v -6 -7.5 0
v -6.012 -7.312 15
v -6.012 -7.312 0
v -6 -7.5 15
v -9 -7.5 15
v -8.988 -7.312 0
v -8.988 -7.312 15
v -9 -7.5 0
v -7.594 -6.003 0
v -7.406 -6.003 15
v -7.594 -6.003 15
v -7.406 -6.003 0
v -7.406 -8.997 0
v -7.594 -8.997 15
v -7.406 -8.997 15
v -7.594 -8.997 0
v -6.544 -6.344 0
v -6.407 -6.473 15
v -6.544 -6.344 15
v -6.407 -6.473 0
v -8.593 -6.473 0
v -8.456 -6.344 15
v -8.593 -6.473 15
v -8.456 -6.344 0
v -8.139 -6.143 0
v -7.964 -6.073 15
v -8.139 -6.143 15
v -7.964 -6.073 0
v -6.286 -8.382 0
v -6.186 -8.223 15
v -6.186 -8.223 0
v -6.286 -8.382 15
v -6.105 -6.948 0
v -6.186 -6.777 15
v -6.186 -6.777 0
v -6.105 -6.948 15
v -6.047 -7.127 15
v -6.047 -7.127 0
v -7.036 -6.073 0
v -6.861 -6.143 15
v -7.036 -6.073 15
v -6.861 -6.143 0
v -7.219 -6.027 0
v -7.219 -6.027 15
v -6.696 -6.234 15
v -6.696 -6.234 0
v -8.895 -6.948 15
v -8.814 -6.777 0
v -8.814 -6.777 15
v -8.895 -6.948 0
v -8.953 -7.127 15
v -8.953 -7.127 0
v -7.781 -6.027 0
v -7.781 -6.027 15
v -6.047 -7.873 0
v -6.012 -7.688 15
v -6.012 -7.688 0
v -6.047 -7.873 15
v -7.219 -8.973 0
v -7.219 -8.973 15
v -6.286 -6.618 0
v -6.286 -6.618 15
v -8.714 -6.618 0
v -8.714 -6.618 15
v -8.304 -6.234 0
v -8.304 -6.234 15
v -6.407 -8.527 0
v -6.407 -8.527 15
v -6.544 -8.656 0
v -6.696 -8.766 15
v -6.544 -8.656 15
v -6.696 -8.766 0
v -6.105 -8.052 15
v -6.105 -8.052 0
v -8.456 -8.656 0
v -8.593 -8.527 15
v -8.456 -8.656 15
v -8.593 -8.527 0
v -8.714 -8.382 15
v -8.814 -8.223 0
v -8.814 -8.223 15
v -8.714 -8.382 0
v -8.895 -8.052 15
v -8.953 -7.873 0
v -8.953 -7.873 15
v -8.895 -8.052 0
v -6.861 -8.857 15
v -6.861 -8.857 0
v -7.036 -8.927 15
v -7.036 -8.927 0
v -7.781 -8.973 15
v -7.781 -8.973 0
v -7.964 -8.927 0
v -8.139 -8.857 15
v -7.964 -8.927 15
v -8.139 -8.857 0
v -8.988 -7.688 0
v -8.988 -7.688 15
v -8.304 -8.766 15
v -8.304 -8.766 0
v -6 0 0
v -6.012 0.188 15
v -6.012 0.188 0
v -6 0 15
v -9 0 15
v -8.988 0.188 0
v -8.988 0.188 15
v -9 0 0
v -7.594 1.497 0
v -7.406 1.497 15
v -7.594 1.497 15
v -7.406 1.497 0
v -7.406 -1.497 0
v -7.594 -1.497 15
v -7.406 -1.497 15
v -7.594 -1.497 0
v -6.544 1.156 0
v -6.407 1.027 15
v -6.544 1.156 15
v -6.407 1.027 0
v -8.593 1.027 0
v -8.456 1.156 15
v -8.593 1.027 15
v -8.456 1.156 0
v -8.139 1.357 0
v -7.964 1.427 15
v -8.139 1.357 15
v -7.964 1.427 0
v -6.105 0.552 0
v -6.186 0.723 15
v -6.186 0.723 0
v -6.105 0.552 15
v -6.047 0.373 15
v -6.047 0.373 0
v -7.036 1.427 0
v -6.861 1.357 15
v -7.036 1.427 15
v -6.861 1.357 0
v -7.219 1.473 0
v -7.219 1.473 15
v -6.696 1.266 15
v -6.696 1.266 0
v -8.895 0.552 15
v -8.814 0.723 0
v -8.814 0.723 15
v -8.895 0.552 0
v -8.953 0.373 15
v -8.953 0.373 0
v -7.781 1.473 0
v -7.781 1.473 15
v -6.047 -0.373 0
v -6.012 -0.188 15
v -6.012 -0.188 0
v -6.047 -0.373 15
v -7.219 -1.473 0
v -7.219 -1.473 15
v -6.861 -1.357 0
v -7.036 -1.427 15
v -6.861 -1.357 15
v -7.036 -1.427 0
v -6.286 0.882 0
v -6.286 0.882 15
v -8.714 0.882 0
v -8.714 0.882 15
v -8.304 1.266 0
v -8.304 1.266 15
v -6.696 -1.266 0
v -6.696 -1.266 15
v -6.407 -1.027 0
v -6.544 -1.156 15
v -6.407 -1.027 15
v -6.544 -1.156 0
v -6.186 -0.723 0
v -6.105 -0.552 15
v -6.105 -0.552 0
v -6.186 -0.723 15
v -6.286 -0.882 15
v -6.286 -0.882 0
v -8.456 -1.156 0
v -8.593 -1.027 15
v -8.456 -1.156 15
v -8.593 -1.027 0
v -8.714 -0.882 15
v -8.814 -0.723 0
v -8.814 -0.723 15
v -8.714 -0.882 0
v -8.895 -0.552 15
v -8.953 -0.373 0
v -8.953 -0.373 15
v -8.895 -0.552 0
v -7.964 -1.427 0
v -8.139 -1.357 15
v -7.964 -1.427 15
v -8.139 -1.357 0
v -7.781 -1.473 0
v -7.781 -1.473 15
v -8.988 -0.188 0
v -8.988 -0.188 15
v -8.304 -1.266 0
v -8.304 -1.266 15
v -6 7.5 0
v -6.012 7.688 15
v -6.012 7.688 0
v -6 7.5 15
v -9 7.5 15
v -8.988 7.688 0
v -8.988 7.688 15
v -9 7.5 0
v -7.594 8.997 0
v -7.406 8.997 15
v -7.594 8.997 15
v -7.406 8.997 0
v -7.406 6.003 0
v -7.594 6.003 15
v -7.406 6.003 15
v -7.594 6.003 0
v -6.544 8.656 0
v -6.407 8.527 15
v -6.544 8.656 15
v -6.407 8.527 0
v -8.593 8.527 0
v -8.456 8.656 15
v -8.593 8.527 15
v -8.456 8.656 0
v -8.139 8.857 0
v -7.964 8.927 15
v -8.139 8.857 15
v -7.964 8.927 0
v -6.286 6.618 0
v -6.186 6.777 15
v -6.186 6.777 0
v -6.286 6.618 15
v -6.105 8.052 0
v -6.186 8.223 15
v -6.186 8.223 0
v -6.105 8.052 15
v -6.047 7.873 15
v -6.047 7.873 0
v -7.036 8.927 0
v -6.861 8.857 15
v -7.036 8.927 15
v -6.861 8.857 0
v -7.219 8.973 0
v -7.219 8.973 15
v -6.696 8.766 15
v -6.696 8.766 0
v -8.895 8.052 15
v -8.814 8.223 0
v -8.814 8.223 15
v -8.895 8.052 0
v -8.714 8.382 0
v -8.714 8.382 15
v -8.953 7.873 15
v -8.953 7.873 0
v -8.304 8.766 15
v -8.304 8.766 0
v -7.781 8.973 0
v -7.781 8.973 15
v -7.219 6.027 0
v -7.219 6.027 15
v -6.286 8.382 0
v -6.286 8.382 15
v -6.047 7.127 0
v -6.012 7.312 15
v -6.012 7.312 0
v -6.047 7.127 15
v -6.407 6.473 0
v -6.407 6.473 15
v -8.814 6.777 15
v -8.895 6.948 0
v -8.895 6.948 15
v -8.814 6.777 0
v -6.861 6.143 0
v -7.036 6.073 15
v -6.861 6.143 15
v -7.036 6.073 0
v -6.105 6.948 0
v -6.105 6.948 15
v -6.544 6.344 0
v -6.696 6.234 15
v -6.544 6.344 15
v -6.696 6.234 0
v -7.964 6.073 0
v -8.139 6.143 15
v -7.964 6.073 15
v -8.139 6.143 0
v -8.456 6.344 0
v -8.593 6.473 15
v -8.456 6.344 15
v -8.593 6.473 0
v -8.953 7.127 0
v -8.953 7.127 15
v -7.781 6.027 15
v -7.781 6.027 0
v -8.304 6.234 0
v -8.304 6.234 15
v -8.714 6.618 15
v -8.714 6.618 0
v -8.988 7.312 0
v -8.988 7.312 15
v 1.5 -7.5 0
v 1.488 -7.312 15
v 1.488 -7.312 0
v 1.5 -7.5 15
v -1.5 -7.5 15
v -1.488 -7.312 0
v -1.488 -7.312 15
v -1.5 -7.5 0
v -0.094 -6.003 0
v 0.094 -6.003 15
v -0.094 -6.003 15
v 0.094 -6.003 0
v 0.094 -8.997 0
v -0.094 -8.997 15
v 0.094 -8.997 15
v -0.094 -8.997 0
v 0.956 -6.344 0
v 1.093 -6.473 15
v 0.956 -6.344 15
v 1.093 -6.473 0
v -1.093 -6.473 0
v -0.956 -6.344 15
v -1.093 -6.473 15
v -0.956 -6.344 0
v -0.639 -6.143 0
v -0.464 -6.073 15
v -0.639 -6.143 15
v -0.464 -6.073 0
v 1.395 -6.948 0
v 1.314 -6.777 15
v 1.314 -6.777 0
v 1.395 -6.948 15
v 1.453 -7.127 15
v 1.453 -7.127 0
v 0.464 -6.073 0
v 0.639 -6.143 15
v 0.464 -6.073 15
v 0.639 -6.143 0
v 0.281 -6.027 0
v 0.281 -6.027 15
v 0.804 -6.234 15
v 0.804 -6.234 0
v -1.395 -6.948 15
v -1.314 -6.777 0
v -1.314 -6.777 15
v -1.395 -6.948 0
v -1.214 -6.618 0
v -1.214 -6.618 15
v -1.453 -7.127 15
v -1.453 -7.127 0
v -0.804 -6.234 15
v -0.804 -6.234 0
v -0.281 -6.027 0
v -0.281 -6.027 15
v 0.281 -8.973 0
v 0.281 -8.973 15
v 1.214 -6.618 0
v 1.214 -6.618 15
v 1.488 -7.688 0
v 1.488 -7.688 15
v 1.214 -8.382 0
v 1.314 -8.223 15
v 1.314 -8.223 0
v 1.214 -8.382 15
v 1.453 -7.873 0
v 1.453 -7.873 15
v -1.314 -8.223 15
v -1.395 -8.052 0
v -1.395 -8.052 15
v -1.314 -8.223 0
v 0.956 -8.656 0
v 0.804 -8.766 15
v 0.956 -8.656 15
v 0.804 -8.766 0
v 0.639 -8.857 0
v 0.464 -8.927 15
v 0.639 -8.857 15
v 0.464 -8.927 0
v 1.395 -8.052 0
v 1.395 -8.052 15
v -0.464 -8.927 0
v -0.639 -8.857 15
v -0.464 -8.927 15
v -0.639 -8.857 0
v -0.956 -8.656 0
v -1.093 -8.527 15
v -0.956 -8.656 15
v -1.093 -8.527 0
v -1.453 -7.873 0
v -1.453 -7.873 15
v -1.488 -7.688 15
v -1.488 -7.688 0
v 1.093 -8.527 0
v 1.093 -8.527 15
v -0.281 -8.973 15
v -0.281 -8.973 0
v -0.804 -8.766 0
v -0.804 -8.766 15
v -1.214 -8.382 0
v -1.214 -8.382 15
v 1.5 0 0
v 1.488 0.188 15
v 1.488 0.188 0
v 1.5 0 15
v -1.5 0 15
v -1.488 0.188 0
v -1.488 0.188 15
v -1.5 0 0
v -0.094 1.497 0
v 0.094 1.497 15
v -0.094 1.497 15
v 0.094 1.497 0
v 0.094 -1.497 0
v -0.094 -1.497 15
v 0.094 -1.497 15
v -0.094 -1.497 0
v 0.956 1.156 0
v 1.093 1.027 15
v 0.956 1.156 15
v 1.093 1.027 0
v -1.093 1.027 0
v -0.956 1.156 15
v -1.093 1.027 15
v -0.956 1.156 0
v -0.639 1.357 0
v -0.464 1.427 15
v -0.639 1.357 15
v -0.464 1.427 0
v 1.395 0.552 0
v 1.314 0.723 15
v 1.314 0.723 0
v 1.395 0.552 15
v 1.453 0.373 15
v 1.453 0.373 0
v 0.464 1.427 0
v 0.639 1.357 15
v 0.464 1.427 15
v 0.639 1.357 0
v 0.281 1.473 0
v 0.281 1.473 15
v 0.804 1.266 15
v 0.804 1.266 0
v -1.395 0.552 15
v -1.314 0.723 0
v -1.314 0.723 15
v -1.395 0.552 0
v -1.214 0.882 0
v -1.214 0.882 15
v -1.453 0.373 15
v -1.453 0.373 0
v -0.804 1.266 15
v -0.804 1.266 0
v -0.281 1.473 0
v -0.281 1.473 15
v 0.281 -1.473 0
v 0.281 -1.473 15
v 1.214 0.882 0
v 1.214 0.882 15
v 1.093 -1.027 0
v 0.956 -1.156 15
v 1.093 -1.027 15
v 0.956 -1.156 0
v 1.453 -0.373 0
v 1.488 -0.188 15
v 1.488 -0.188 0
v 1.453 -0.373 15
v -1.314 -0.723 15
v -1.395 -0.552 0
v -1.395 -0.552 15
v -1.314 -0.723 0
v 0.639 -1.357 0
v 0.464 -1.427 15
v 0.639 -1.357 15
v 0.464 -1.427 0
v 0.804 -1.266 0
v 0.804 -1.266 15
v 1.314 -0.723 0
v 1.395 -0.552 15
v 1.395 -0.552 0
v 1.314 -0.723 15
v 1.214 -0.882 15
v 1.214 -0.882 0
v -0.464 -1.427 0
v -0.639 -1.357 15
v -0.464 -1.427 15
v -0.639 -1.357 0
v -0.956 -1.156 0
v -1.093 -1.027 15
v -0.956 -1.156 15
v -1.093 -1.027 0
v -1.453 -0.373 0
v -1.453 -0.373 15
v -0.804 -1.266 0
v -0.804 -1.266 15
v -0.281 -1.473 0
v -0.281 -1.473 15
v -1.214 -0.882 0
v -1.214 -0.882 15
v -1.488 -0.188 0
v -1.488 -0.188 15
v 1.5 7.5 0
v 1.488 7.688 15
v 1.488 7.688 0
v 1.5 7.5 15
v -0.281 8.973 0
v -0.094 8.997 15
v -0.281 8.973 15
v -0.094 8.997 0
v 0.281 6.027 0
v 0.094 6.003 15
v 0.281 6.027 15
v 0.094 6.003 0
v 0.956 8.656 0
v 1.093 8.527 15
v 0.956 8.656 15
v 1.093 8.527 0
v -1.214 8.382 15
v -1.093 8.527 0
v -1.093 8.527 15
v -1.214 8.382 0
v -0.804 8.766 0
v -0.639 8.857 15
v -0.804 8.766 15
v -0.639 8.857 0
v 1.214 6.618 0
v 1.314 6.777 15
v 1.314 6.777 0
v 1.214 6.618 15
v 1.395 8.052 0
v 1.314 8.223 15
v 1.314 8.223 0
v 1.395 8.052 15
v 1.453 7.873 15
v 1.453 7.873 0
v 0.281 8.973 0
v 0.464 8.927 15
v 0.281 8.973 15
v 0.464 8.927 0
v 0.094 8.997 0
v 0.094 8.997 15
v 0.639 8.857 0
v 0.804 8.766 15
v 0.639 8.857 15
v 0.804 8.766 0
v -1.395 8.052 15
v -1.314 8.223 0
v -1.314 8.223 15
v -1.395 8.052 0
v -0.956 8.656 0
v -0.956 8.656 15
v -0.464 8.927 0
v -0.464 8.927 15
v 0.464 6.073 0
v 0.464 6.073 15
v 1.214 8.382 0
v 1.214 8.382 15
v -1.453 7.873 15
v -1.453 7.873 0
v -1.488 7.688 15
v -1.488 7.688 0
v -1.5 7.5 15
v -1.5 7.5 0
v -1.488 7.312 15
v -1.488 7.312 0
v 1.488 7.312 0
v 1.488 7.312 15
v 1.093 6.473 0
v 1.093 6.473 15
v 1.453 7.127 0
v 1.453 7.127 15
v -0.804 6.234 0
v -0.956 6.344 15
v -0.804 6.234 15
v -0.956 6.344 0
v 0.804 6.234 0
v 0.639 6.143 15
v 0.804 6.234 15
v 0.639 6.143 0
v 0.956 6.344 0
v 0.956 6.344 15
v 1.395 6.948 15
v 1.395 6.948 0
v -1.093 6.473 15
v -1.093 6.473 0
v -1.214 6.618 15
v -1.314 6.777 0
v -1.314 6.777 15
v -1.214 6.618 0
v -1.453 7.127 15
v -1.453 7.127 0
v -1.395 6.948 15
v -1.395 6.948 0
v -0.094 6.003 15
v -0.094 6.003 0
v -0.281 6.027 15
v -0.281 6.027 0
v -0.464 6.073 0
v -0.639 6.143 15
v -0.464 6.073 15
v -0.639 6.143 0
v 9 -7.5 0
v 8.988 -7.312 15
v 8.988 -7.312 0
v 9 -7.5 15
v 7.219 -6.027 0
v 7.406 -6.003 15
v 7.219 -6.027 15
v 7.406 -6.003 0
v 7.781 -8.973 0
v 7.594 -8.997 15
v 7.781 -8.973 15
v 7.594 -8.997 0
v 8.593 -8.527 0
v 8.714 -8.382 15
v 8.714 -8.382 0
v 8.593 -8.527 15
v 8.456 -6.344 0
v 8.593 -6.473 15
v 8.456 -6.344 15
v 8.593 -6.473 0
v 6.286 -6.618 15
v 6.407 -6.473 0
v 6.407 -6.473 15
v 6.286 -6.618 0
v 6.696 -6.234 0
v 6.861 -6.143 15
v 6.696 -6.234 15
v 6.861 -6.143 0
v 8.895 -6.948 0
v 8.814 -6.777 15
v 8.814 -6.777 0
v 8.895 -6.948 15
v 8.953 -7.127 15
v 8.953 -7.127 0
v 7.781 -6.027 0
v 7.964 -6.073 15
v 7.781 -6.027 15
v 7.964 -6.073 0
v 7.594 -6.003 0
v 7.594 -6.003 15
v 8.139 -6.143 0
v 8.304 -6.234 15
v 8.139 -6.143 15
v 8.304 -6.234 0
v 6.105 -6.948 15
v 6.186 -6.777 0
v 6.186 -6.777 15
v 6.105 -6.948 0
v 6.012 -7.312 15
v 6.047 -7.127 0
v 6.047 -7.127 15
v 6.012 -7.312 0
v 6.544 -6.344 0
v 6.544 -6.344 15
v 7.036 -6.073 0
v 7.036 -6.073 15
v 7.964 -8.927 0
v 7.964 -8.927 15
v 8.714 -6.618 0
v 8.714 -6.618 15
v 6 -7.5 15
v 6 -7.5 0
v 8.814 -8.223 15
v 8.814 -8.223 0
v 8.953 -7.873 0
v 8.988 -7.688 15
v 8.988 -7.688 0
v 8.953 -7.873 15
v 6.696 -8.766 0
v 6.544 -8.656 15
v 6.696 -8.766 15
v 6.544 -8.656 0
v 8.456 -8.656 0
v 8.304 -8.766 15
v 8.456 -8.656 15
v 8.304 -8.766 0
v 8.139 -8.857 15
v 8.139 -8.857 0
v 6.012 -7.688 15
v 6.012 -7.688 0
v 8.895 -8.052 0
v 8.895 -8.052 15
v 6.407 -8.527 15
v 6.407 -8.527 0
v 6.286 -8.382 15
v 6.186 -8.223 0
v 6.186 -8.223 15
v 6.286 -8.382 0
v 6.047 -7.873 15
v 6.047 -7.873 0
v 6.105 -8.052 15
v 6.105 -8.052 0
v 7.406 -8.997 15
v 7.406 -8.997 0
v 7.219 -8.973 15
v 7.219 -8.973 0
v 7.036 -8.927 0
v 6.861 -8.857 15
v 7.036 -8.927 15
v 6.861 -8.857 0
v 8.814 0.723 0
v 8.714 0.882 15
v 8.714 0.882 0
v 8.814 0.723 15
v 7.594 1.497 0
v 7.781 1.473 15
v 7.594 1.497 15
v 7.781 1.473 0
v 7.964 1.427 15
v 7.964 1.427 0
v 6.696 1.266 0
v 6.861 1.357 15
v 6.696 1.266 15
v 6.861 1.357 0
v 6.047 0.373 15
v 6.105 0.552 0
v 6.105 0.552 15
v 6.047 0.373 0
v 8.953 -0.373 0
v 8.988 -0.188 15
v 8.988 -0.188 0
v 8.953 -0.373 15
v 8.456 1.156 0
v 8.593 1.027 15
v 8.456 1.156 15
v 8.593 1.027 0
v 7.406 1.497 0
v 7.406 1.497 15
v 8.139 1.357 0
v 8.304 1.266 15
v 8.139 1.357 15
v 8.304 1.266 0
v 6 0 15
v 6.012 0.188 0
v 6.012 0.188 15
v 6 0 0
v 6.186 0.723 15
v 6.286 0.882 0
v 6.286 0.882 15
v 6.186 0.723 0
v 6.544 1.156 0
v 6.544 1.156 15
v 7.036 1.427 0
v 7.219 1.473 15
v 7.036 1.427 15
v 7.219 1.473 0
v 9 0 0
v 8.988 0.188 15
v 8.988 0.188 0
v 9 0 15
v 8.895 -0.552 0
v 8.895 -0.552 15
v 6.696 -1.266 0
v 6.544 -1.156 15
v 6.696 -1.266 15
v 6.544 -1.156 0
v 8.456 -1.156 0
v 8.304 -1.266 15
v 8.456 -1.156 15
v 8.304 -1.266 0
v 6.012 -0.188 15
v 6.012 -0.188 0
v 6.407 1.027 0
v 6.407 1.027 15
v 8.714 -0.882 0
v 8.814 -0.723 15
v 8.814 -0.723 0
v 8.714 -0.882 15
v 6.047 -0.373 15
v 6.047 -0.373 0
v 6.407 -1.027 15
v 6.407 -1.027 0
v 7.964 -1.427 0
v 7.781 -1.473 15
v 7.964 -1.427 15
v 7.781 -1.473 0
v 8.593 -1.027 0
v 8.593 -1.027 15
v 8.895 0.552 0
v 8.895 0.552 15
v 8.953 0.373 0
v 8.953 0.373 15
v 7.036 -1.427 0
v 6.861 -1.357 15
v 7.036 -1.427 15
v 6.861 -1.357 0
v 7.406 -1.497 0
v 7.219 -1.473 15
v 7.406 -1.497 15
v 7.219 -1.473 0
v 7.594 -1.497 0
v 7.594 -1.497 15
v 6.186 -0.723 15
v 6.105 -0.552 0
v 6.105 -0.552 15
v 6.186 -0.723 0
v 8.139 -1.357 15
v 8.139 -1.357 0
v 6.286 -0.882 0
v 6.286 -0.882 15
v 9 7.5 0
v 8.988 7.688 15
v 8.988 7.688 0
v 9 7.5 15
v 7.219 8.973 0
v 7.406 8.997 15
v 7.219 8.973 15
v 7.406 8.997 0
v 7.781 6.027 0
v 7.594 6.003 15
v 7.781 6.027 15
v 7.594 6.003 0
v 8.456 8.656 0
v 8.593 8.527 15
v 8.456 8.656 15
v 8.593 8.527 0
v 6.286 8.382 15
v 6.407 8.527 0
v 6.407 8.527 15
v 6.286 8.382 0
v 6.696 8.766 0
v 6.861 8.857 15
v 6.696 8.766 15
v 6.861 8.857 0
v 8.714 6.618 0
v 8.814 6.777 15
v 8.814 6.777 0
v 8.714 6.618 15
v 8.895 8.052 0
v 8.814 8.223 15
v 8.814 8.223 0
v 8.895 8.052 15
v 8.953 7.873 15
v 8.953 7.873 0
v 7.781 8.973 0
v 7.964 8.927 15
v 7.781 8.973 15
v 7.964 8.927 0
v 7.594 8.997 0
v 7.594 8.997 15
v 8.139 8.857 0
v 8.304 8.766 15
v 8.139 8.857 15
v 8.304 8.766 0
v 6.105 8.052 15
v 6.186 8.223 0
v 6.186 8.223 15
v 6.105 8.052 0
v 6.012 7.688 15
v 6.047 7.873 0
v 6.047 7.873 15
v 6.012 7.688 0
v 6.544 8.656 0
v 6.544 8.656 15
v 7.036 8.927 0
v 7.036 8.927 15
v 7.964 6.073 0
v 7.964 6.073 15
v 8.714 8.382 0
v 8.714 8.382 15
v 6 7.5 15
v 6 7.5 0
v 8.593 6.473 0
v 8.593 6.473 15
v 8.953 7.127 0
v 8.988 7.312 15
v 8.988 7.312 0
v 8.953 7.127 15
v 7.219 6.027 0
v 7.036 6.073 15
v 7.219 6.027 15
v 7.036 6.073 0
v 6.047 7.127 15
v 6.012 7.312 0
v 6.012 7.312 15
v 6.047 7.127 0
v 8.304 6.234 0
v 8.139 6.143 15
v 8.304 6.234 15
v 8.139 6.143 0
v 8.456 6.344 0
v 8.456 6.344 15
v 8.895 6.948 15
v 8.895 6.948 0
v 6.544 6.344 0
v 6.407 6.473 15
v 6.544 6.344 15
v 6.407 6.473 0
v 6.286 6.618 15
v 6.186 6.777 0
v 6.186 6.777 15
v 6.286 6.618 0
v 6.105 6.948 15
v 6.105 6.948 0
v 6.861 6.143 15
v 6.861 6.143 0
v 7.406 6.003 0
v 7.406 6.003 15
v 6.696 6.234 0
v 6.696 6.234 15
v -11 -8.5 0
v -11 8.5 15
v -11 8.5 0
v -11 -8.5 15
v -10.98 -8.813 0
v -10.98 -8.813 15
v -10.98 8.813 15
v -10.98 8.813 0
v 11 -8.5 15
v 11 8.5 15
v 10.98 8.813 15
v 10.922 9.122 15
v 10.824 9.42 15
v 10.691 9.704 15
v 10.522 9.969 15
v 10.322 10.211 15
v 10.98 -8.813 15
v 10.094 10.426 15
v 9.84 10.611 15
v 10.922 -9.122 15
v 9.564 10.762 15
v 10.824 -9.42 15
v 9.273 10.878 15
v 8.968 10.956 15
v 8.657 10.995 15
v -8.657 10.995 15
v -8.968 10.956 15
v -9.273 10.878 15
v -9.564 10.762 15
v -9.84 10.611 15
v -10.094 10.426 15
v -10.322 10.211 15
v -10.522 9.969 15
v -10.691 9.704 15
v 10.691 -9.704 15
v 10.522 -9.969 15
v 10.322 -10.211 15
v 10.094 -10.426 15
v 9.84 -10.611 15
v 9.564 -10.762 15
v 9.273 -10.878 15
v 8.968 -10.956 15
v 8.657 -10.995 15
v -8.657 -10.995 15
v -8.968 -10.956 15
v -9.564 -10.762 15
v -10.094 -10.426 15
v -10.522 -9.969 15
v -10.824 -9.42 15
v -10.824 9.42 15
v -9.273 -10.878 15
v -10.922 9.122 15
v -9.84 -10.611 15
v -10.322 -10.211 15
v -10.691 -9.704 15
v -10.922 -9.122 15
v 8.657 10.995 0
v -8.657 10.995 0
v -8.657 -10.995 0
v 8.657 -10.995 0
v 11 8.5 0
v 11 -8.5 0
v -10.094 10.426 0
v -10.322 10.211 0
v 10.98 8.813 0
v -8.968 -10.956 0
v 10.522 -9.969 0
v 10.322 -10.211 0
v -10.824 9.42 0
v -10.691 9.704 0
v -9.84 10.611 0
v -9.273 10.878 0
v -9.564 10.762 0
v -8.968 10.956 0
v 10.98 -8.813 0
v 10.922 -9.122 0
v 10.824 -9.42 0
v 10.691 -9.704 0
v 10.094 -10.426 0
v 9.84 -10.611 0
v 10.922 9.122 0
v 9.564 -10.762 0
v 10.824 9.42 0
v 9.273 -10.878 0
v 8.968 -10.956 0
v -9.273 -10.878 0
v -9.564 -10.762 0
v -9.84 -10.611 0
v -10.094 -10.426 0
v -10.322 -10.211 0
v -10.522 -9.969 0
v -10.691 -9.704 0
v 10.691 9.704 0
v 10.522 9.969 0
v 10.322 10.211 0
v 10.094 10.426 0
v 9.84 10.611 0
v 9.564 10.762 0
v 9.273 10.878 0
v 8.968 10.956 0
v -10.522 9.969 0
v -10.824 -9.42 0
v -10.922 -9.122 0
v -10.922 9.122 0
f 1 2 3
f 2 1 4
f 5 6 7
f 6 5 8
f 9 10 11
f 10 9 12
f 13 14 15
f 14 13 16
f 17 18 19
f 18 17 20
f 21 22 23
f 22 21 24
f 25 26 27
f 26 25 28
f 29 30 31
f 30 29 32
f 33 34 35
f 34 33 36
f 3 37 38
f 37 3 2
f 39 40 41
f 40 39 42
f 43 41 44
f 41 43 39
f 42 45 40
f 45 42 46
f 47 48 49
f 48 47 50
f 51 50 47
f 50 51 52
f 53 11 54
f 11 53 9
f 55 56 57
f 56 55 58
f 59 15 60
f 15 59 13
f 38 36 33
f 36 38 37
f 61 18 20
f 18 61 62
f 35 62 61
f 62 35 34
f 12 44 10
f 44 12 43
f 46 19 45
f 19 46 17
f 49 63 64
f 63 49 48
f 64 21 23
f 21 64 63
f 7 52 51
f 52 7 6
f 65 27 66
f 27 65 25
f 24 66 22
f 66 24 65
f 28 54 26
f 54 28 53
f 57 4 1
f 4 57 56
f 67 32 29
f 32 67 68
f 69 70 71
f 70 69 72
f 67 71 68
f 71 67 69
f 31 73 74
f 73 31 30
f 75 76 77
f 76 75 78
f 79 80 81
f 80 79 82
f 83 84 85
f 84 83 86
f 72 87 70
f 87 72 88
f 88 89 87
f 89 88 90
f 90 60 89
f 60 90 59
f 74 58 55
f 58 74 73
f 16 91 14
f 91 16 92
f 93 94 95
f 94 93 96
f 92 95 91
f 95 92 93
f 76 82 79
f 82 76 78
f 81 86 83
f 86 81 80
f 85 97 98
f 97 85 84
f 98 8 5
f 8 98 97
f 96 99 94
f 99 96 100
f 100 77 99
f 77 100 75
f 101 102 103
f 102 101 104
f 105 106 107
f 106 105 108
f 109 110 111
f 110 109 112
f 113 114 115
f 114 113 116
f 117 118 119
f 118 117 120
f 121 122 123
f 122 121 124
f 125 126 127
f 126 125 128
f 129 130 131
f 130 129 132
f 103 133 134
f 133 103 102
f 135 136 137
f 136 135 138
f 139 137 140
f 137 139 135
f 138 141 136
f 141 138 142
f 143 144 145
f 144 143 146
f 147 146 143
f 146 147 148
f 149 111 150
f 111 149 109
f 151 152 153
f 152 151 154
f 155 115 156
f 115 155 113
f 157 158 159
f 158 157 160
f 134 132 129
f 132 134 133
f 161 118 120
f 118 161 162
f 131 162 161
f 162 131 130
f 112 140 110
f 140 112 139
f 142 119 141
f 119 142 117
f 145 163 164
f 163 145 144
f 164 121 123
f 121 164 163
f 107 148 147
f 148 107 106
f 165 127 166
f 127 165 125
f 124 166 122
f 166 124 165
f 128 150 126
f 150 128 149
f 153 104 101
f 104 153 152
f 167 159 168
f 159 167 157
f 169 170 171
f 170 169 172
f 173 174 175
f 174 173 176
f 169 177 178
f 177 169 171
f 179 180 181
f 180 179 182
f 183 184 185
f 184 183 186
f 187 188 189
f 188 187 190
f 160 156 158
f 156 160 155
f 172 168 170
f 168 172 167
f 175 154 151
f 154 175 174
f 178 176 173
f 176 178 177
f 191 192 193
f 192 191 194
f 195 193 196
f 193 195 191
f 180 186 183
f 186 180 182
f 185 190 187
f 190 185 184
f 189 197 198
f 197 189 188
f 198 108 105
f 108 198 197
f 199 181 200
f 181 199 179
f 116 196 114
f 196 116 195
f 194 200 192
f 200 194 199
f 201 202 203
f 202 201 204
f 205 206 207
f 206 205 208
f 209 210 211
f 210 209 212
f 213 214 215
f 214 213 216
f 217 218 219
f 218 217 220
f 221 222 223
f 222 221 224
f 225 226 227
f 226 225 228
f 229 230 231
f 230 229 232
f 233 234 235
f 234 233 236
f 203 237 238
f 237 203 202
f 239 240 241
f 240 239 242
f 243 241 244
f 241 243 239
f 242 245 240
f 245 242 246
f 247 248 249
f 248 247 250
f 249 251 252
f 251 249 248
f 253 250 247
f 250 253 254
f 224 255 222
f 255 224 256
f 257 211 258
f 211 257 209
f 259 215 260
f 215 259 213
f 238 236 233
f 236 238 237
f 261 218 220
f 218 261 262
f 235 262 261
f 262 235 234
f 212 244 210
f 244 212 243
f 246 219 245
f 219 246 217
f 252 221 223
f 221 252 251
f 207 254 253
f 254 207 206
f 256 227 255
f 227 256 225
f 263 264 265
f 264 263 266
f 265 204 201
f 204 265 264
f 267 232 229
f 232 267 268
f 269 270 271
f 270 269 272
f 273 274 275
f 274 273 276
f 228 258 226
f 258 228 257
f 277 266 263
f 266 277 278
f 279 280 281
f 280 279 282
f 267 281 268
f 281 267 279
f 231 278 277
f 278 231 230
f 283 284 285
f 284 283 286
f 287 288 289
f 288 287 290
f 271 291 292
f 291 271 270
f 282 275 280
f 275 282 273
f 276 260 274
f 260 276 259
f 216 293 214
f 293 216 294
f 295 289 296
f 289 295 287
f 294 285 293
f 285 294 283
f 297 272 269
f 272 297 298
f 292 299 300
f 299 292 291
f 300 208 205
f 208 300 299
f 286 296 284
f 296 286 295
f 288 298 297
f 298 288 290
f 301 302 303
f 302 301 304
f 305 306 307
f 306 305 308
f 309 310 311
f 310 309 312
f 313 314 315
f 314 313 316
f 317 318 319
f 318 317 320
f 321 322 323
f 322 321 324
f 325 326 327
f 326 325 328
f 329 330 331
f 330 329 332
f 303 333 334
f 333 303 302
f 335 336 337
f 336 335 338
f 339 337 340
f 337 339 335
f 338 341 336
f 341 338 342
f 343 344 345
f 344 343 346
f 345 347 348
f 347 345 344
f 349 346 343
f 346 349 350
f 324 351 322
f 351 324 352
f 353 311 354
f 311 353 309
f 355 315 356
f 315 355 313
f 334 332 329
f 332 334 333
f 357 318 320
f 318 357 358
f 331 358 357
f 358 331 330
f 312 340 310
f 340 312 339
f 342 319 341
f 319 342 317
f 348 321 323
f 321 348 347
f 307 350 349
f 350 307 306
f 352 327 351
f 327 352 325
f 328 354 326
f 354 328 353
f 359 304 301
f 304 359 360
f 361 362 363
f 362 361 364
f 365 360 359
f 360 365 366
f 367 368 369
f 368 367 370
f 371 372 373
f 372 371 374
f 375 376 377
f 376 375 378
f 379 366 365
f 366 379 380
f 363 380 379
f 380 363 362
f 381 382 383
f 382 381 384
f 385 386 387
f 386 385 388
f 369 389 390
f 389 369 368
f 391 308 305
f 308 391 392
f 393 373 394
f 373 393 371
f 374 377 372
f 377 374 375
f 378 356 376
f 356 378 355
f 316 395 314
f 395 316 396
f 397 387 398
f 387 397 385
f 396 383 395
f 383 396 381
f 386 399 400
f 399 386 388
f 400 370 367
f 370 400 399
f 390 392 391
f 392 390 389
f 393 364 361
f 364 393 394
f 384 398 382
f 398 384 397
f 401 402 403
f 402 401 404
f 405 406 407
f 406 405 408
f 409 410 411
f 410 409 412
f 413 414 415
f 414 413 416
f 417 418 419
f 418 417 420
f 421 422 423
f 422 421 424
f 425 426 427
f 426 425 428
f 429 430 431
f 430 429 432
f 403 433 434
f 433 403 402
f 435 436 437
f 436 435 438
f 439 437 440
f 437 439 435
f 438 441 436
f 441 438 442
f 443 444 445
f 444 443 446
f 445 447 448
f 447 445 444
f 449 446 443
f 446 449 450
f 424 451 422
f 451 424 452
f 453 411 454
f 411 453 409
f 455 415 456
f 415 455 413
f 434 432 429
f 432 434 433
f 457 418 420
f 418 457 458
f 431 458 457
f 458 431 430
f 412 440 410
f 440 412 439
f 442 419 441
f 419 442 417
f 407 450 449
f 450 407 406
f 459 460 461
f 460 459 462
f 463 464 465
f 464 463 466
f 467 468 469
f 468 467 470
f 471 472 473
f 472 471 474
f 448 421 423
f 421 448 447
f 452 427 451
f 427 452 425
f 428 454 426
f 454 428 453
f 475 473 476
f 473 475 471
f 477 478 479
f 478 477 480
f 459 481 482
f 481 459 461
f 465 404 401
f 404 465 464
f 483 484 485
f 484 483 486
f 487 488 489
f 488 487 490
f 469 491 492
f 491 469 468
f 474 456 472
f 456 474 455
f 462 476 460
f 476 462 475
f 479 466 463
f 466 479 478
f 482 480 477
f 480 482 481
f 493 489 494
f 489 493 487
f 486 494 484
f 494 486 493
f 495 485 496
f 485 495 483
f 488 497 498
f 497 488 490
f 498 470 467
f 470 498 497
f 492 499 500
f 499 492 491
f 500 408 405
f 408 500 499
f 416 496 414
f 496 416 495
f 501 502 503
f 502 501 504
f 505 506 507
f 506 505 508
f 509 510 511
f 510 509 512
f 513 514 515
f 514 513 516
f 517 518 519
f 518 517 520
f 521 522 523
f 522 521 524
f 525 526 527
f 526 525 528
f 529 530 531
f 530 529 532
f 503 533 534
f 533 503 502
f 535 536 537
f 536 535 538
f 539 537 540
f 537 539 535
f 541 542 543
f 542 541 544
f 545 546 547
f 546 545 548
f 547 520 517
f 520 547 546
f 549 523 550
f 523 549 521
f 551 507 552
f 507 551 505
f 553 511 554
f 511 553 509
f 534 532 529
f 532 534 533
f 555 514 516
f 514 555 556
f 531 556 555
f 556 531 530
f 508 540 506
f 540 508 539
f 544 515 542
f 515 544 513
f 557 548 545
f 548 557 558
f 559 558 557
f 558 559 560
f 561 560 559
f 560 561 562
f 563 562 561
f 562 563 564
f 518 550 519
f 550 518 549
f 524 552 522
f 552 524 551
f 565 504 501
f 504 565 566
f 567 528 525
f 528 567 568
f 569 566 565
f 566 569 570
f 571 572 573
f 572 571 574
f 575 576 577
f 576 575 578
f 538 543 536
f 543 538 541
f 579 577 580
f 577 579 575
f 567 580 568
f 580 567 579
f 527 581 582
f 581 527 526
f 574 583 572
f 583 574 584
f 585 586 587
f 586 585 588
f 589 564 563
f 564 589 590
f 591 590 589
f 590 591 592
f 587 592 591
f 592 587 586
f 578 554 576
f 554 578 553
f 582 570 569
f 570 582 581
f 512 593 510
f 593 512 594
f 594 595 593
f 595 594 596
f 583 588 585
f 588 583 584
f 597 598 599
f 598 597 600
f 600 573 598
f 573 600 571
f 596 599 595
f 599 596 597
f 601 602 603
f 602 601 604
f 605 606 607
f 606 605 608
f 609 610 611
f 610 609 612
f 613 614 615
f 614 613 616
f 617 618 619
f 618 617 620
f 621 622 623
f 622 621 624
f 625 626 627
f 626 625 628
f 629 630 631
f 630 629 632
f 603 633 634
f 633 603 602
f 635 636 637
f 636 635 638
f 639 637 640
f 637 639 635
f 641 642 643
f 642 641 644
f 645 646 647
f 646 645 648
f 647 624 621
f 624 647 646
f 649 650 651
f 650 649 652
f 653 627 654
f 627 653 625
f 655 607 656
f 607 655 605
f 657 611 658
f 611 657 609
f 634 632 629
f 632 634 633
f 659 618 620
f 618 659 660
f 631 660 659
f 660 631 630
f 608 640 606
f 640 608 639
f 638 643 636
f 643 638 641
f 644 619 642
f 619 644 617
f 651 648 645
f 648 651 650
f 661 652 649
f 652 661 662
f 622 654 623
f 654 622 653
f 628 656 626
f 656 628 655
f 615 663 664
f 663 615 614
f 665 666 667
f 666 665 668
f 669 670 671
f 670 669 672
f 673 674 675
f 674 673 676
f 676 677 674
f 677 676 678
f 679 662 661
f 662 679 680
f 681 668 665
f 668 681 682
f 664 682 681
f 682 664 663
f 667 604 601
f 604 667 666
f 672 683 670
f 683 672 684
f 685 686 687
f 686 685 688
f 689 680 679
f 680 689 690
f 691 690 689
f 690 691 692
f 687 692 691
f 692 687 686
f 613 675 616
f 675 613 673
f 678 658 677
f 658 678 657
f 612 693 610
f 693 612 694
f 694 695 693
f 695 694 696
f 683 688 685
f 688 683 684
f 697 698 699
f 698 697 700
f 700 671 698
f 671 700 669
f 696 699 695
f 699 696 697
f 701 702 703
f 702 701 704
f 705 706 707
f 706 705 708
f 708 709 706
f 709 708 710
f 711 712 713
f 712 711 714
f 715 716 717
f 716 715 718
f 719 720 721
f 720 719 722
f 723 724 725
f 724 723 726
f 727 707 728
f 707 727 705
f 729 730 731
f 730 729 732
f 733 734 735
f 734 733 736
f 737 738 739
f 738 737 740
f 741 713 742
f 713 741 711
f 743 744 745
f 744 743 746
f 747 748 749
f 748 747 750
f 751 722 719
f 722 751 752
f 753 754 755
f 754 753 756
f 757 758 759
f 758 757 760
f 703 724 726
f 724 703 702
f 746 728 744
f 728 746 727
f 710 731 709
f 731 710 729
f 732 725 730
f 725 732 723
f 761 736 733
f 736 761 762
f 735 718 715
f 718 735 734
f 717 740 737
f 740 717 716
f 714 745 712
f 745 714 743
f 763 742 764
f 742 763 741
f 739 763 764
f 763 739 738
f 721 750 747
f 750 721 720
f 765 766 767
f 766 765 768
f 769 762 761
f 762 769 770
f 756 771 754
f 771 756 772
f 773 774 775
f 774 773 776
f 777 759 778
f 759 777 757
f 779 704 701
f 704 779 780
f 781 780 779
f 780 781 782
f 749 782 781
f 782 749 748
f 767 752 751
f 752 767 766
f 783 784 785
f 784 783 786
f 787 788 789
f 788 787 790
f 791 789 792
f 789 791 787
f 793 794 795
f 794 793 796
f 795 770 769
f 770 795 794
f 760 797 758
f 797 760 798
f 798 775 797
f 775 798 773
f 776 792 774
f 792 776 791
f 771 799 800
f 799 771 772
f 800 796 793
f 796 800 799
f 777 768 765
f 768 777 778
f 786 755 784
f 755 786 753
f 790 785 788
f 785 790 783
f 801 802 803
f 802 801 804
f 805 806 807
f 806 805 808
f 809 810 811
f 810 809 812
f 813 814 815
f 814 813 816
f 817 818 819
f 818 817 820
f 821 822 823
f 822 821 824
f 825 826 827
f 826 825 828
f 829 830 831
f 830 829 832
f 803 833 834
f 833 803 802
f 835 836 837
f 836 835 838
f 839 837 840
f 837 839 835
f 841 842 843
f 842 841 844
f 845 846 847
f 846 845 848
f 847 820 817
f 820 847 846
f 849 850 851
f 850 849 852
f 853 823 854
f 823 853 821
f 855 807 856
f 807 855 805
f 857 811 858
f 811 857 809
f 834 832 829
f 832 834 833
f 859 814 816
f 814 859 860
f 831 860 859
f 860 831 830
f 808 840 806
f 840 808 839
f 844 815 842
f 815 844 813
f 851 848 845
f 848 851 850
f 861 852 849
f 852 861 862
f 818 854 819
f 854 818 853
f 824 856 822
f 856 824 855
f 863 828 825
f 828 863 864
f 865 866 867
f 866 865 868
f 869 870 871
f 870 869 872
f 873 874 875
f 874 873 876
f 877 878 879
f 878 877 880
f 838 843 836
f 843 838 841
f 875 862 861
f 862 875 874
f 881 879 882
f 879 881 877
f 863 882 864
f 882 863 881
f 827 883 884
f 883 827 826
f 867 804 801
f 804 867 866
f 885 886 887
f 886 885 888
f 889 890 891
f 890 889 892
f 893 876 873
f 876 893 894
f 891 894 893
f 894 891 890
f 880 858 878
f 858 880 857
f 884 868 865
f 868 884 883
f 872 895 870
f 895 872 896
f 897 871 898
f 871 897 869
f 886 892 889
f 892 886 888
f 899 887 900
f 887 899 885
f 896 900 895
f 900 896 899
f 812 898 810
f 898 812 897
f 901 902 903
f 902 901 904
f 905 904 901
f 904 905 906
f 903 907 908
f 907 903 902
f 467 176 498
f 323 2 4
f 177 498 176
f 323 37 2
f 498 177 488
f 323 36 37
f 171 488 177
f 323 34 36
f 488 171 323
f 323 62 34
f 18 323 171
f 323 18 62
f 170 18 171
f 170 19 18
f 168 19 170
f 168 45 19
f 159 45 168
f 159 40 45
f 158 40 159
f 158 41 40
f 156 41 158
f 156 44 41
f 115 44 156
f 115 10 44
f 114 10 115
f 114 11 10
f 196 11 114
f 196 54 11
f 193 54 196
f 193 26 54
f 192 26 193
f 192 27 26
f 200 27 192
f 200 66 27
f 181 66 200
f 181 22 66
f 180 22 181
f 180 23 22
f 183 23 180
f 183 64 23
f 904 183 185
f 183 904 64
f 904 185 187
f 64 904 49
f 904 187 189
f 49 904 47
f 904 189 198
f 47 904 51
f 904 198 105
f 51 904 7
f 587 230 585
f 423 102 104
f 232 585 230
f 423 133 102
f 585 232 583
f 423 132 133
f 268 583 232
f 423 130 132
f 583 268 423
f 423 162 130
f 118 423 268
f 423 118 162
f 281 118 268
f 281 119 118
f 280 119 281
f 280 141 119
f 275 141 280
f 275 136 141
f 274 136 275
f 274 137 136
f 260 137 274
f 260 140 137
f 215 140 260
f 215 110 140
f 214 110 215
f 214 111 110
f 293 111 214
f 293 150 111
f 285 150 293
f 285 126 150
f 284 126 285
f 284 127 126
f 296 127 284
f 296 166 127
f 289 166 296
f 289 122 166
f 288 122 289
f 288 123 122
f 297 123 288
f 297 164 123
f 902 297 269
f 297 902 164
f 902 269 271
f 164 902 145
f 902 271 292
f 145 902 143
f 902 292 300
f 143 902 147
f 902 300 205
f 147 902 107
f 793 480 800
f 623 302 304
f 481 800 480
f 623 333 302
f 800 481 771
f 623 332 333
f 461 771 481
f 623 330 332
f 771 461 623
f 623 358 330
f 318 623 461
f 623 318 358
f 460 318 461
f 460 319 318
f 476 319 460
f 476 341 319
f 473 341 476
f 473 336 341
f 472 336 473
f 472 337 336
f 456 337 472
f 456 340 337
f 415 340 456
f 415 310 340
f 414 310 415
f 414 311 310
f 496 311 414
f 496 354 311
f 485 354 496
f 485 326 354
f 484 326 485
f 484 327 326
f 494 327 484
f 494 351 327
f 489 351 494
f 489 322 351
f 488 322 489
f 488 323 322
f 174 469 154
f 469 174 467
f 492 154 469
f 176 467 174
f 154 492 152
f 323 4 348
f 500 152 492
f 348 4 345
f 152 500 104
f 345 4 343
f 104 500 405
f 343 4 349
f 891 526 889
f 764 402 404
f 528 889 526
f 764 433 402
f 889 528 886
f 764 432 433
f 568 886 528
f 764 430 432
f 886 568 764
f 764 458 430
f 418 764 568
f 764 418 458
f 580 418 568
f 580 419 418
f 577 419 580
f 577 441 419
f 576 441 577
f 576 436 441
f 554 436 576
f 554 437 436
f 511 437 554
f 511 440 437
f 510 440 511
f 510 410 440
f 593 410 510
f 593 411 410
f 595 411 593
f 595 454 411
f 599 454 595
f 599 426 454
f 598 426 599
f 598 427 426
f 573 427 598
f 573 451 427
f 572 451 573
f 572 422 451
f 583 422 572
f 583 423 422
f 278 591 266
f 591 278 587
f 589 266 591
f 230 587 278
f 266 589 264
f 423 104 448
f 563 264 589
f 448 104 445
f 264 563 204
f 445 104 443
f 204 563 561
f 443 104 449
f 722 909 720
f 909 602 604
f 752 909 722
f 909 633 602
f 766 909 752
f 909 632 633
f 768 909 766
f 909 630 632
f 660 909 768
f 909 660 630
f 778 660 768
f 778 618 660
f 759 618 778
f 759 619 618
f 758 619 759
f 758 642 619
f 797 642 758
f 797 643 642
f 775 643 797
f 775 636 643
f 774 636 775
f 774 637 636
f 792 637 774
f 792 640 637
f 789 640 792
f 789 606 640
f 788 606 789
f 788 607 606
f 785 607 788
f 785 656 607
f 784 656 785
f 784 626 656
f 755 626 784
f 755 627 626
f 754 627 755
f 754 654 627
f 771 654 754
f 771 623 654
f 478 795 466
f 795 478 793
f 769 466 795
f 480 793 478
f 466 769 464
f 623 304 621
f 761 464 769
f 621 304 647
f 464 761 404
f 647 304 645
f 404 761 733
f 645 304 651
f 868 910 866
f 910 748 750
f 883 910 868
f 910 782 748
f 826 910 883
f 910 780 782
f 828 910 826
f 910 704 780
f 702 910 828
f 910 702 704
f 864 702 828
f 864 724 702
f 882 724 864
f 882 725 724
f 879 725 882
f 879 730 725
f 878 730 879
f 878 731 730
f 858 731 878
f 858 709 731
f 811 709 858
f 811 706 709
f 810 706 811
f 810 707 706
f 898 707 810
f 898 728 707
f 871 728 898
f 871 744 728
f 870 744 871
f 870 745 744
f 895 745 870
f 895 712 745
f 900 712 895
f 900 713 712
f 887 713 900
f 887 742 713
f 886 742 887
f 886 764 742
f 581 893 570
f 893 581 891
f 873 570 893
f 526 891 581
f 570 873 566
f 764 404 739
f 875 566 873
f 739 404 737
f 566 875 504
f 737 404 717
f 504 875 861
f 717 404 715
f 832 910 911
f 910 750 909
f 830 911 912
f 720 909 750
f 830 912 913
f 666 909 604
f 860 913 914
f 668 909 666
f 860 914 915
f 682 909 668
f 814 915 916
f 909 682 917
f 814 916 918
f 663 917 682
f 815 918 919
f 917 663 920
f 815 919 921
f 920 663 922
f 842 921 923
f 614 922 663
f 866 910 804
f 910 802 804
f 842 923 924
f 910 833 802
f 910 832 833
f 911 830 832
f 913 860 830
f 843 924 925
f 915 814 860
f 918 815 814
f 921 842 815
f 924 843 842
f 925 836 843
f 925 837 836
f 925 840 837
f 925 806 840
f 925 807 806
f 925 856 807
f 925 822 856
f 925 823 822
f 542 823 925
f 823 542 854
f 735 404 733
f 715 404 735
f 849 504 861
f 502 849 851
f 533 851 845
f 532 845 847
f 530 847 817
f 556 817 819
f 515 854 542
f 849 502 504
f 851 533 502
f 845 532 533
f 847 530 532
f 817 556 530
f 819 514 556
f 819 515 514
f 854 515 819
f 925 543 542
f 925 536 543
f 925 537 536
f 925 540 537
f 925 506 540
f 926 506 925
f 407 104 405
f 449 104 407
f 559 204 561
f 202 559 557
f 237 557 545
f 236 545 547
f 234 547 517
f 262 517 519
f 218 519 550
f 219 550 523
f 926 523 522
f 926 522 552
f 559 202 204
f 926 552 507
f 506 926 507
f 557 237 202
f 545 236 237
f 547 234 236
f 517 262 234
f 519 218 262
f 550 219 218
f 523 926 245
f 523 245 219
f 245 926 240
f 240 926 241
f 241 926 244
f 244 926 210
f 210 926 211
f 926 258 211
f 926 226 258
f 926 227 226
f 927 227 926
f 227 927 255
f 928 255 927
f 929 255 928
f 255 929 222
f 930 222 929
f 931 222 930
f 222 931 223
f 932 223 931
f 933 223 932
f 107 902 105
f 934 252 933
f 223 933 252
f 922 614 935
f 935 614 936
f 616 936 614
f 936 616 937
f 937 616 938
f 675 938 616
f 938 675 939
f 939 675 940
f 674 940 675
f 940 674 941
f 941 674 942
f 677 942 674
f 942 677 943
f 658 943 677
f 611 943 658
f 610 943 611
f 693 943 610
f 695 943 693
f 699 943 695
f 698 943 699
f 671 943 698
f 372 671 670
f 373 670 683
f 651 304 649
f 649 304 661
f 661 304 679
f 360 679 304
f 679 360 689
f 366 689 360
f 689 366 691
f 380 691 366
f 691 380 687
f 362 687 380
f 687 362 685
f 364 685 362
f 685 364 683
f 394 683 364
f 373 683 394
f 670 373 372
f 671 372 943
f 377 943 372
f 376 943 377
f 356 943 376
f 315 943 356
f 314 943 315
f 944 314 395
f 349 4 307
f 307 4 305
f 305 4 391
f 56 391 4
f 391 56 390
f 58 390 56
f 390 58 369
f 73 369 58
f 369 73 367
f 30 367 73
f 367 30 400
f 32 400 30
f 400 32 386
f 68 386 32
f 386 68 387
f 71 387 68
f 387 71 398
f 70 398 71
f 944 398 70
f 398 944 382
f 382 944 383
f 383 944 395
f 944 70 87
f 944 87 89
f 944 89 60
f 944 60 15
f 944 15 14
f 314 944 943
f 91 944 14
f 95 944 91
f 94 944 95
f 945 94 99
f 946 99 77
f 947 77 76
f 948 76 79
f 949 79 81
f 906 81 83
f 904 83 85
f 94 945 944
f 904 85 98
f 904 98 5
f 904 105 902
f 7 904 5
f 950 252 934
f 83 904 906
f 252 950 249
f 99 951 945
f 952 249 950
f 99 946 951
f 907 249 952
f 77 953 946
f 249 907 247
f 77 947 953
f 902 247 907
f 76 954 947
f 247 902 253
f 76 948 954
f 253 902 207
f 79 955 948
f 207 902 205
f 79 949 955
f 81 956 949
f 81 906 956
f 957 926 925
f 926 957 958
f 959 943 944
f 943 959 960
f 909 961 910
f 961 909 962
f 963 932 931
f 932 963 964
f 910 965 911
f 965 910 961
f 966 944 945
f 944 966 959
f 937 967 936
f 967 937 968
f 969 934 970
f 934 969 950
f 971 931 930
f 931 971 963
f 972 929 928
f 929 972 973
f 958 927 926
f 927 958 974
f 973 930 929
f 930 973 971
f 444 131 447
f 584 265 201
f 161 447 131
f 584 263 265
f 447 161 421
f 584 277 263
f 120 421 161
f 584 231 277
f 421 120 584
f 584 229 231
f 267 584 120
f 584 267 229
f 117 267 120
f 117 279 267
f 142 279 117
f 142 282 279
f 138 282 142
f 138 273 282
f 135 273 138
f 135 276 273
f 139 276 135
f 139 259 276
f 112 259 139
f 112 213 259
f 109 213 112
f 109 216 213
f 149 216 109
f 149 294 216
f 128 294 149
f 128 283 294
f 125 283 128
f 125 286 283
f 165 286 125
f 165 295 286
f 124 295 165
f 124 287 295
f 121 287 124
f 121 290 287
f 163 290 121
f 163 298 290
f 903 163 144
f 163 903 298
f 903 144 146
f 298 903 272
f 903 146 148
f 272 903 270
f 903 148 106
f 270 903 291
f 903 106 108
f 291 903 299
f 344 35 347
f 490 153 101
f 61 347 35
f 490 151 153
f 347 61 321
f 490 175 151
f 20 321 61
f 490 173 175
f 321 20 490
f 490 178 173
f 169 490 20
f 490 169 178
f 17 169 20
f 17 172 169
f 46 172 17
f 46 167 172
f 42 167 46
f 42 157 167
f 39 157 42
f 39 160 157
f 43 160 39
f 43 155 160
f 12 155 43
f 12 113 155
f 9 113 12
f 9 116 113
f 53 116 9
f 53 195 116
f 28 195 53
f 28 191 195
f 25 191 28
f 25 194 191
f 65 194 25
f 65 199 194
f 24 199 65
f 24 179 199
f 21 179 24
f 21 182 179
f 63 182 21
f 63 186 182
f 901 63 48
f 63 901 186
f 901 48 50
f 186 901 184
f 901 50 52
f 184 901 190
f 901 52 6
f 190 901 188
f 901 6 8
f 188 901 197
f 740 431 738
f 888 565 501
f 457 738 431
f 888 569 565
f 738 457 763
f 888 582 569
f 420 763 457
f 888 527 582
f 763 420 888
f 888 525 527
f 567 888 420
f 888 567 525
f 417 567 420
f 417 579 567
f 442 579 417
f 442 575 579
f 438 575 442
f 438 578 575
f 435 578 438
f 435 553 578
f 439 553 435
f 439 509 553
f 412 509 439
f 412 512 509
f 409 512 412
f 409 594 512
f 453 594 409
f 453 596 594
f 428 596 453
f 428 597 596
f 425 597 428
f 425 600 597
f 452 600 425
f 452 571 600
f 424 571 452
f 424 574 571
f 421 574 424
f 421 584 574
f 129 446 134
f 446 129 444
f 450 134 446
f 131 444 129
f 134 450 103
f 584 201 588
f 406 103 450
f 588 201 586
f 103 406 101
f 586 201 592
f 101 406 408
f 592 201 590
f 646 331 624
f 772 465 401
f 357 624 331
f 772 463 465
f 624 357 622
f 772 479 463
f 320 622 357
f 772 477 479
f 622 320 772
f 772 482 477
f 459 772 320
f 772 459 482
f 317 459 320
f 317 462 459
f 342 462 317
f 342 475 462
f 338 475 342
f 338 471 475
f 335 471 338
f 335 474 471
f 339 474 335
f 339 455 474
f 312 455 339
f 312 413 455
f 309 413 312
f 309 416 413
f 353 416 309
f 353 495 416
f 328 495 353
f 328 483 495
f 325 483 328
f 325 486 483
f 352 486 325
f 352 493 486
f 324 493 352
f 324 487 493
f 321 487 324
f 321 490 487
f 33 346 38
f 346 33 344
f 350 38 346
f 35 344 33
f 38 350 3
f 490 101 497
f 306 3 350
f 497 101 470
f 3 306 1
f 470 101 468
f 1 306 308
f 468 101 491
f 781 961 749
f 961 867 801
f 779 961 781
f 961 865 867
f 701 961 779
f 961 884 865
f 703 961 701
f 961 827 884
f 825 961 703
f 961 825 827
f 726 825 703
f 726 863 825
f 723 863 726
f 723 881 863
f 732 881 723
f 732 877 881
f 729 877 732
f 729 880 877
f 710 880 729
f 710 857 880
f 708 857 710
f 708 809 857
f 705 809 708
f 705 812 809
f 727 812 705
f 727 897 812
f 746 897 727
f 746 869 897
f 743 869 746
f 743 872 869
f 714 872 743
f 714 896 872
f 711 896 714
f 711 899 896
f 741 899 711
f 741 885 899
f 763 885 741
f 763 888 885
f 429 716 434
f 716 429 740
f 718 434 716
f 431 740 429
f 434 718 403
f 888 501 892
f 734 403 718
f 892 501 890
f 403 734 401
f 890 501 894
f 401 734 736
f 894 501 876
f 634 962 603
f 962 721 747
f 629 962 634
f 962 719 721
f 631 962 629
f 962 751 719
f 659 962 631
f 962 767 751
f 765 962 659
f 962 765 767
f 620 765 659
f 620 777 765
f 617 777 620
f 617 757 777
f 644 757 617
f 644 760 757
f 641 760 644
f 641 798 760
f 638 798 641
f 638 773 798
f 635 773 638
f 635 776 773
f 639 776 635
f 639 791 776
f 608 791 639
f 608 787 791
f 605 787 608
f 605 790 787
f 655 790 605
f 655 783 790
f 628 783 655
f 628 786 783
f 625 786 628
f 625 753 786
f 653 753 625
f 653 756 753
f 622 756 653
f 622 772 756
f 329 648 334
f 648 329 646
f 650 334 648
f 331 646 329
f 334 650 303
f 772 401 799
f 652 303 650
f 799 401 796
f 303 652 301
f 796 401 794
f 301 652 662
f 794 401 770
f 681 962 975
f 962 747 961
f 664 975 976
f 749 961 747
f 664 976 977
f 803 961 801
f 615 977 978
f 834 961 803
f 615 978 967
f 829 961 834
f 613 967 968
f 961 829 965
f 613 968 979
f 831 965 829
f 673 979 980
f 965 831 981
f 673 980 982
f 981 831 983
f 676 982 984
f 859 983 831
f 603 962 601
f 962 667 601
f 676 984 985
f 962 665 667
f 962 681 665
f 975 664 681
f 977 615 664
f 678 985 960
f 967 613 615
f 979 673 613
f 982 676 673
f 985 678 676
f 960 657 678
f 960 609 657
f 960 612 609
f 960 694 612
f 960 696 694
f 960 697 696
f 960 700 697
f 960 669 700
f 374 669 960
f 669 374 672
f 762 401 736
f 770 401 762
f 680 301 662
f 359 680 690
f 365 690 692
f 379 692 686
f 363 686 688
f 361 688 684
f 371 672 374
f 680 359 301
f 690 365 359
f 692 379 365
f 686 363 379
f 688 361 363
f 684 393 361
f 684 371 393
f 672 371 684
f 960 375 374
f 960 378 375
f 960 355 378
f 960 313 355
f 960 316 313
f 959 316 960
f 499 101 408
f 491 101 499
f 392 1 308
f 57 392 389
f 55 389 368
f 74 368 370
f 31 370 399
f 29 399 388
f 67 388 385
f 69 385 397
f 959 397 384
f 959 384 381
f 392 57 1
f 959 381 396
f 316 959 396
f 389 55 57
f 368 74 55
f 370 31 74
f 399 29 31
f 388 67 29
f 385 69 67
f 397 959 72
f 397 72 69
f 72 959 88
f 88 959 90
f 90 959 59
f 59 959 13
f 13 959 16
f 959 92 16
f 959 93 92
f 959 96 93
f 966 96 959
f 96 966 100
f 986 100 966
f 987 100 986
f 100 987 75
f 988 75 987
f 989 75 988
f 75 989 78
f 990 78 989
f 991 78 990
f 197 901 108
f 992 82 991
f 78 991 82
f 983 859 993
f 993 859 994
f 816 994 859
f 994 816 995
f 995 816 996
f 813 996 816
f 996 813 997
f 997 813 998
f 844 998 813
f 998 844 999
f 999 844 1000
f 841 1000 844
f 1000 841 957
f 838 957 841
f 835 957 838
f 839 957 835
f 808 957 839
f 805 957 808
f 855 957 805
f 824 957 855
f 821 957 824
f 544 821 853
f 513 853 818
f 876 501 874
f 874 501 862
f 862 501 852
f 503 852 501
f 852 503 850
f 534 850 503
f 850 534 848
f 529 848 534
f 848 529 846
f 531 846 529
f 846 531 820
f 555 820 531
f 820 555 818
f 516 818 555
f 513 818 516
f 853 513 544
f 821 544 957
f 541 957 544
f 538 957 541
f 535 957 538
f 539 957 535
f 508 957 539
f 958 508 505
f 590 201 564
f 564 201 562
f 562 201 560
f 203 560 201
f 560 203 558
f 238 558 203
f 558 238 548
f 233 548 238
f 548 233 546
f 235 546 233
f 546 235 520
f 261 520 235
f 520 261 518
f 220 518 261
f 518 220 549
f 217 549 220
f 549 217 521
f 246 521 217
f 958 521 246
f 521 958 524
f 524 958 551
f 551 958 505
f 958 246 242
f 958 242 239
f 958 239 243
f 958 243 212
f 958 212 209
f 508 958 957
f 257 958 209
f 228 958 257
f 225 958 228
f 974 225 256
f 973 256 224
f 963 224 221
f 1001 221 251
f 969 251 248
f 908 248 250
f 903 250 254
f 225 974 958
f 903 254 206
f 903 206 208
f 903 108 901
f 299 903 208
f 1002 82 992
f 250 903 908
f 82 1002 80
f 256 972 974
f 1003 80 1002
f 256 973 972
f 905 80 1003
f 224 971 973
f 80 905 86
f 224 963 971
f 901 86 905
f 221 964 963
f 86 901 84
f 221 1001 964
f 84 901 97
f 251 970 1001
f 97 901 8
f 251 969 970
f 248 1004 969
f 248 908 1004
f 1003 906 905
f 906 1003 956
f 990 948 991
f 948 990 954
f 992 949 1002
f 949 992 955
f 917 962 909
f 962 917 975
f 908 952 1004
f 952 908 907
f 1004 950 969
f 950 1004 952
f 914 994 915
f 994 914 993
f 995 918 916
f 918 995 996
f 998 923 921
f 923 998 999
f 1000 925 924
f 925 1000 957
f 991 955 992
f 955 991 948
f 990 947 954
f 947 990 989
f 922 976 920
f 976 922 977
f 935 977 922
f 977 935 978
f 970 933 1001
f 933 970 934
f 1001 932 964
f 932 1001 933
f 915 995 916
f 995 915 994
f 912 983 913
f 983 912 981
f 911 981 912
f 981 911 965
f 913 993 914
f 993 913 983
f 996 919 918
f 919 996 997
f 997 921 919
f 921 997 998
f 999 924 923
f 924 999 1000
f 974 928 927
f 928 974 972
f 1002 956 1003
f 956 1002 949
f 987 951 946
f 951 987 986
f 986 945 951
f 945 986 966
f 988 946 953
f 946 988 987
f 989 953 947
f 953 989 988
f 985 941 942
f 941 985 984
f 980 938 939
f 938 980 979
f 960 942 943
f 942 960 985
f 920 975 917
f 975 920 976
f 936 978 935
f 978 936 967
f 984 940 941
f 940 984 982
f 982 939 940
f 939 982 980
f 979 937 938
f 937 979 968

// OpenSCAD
$fn = 50;


difference() {
	union() {
		translate(v = [0, 0, 0]) {
			rotate(a = [0, 0, 0]) {
				hull() {
					translate(v = [-8.5000000000, 8.5000000000, 0]) {
						rotate(a = [0, 0, 0]) {
							translate(v = [0, 0, 0]) {
								rotate(a = [0, 0, 0]) {
									cylinder(h = 15, r = 2.5000000000);
								}
							}
						}
					}
					translate(v = [8.5000000000, 8.5000000000, 0]) {
						rotate(a = [0, 0, 0]) {
							translate(v = [0, 0, 0]) {
								rotate(a = [0, 0, 0]) {
									cylinder(h = 15, r = 2.5000000000);
								}
							}
						}
					}
					translate(v = [-8.5000000000, -8.5000000000, 0]) {
						rotate(a = [0, 0, 0]) {
							translate(v = [0, 0, 0]) {
								rotate(a = [0, 0, 0]) {
									cylinder(h = 15, r = 2.5000000000);
								}
							}
						}
					}
					translate(v = [8.5000000000, -8.5000000000, 0]) {
						rotate(a = [0, 0, 0]) {
							translate(v = [0, 0, 0]) {
								rotate(a = [0, 0, 0]) {
									cylinder(h = 15, r = 2.5000000000);
								}
							}
						}
					}
				}
			}
		}
	}
	union() {
		translate(v = [-7.5000000000, -7.5000000000, 0]) {
			rotate(a = [0, 0, 0]) {
				translate(v = [0, 0, -50]) {
					rotate(a = [0, 0, 0]) {
						cylinder(h = 100, r = 1.5000000000);
					}
				}
			}
		}
		translate(v = [-7.5000000000, 0.0000000000, 0]) {
			rotate(a = [0, 0, 0]) {
				translate(v = [0, 0, -50]) {
					rotate(a = [0, 0, 0]) {
						cylinder(h = 100, r = 1.5000000000);
					}
				}
			}
		}
		translate(v = [-7.5000000000, 7.5000000000, 0]) {
			rotate(a = [0, 0, 0]) {
				translate(v = [0, 0, -50]) {
					rotate(a = [0, 0, 0]) {
						cylinder(h = 100, r = 1.5000000000);
					}
				}
			}
		}
		translate(v = [0.0000000000, -7.5000000000, 0]) {
			rotate(a = [0, 0, 0]) {
				translate(v = [0, 0, -50]) {
					rotate(a = [0, 0, 0]) {
						cylinder(h = 100, r = 1.5000000000);
					}
				}
			}
		}
		translate(v = [0.0000000000, 0.0000000000, 0]) {
			rotate(a = [0, 0, 0]) {
				translate(v = [0, 0, -50]) {
					rotate(a = [0, 0, 0]) {
						cylinder(h = 100, r = 1.5000000000);
					}
				}
			}
		}
		translate(v = [0.0000000000, 7.5000000000, 0]) {
			rotate(a = [0, 0, 0]) {
				translate(v = [0, 0, -50]) {
					rotate(a = [0, 0, 0]) {
						cylinder(h = 100, r = 1.5000000000);
					}
				}
			}
		}
		translate(v = [7.5000000000, -7.5000000000, 0]) {
			rotate(a = [0, 0, 0]) {
				translate(v = [0, 0, -50]) {
					rotate(a = [0, 0, 0]) {
						cylinder(h = 100, r = 1.5000000000);
					}
				}
			}
		}
		translate(v = [7.5000000000, 0.0000000000, 0]) {
			rotate(a = [0, 0, 0]) {
				translate(v = [0, 0, -50]) {
					rotate(a = [0, 0, 0]) {
						cylinder(h = 100, r = 1.5000000000);
					}
				}
			}
		}
		translate(v = [7.5000000000, 7.5000000000, 0]) {
			rotate(a = [0, 0, 0]) {
				translate(v = [0, 0, -50]) {
					rotate(a = [0, 0, 0]) {
						cylinder(h = 100, r = 1.5000000000);
					}
				}
			}
		}
	}
}
